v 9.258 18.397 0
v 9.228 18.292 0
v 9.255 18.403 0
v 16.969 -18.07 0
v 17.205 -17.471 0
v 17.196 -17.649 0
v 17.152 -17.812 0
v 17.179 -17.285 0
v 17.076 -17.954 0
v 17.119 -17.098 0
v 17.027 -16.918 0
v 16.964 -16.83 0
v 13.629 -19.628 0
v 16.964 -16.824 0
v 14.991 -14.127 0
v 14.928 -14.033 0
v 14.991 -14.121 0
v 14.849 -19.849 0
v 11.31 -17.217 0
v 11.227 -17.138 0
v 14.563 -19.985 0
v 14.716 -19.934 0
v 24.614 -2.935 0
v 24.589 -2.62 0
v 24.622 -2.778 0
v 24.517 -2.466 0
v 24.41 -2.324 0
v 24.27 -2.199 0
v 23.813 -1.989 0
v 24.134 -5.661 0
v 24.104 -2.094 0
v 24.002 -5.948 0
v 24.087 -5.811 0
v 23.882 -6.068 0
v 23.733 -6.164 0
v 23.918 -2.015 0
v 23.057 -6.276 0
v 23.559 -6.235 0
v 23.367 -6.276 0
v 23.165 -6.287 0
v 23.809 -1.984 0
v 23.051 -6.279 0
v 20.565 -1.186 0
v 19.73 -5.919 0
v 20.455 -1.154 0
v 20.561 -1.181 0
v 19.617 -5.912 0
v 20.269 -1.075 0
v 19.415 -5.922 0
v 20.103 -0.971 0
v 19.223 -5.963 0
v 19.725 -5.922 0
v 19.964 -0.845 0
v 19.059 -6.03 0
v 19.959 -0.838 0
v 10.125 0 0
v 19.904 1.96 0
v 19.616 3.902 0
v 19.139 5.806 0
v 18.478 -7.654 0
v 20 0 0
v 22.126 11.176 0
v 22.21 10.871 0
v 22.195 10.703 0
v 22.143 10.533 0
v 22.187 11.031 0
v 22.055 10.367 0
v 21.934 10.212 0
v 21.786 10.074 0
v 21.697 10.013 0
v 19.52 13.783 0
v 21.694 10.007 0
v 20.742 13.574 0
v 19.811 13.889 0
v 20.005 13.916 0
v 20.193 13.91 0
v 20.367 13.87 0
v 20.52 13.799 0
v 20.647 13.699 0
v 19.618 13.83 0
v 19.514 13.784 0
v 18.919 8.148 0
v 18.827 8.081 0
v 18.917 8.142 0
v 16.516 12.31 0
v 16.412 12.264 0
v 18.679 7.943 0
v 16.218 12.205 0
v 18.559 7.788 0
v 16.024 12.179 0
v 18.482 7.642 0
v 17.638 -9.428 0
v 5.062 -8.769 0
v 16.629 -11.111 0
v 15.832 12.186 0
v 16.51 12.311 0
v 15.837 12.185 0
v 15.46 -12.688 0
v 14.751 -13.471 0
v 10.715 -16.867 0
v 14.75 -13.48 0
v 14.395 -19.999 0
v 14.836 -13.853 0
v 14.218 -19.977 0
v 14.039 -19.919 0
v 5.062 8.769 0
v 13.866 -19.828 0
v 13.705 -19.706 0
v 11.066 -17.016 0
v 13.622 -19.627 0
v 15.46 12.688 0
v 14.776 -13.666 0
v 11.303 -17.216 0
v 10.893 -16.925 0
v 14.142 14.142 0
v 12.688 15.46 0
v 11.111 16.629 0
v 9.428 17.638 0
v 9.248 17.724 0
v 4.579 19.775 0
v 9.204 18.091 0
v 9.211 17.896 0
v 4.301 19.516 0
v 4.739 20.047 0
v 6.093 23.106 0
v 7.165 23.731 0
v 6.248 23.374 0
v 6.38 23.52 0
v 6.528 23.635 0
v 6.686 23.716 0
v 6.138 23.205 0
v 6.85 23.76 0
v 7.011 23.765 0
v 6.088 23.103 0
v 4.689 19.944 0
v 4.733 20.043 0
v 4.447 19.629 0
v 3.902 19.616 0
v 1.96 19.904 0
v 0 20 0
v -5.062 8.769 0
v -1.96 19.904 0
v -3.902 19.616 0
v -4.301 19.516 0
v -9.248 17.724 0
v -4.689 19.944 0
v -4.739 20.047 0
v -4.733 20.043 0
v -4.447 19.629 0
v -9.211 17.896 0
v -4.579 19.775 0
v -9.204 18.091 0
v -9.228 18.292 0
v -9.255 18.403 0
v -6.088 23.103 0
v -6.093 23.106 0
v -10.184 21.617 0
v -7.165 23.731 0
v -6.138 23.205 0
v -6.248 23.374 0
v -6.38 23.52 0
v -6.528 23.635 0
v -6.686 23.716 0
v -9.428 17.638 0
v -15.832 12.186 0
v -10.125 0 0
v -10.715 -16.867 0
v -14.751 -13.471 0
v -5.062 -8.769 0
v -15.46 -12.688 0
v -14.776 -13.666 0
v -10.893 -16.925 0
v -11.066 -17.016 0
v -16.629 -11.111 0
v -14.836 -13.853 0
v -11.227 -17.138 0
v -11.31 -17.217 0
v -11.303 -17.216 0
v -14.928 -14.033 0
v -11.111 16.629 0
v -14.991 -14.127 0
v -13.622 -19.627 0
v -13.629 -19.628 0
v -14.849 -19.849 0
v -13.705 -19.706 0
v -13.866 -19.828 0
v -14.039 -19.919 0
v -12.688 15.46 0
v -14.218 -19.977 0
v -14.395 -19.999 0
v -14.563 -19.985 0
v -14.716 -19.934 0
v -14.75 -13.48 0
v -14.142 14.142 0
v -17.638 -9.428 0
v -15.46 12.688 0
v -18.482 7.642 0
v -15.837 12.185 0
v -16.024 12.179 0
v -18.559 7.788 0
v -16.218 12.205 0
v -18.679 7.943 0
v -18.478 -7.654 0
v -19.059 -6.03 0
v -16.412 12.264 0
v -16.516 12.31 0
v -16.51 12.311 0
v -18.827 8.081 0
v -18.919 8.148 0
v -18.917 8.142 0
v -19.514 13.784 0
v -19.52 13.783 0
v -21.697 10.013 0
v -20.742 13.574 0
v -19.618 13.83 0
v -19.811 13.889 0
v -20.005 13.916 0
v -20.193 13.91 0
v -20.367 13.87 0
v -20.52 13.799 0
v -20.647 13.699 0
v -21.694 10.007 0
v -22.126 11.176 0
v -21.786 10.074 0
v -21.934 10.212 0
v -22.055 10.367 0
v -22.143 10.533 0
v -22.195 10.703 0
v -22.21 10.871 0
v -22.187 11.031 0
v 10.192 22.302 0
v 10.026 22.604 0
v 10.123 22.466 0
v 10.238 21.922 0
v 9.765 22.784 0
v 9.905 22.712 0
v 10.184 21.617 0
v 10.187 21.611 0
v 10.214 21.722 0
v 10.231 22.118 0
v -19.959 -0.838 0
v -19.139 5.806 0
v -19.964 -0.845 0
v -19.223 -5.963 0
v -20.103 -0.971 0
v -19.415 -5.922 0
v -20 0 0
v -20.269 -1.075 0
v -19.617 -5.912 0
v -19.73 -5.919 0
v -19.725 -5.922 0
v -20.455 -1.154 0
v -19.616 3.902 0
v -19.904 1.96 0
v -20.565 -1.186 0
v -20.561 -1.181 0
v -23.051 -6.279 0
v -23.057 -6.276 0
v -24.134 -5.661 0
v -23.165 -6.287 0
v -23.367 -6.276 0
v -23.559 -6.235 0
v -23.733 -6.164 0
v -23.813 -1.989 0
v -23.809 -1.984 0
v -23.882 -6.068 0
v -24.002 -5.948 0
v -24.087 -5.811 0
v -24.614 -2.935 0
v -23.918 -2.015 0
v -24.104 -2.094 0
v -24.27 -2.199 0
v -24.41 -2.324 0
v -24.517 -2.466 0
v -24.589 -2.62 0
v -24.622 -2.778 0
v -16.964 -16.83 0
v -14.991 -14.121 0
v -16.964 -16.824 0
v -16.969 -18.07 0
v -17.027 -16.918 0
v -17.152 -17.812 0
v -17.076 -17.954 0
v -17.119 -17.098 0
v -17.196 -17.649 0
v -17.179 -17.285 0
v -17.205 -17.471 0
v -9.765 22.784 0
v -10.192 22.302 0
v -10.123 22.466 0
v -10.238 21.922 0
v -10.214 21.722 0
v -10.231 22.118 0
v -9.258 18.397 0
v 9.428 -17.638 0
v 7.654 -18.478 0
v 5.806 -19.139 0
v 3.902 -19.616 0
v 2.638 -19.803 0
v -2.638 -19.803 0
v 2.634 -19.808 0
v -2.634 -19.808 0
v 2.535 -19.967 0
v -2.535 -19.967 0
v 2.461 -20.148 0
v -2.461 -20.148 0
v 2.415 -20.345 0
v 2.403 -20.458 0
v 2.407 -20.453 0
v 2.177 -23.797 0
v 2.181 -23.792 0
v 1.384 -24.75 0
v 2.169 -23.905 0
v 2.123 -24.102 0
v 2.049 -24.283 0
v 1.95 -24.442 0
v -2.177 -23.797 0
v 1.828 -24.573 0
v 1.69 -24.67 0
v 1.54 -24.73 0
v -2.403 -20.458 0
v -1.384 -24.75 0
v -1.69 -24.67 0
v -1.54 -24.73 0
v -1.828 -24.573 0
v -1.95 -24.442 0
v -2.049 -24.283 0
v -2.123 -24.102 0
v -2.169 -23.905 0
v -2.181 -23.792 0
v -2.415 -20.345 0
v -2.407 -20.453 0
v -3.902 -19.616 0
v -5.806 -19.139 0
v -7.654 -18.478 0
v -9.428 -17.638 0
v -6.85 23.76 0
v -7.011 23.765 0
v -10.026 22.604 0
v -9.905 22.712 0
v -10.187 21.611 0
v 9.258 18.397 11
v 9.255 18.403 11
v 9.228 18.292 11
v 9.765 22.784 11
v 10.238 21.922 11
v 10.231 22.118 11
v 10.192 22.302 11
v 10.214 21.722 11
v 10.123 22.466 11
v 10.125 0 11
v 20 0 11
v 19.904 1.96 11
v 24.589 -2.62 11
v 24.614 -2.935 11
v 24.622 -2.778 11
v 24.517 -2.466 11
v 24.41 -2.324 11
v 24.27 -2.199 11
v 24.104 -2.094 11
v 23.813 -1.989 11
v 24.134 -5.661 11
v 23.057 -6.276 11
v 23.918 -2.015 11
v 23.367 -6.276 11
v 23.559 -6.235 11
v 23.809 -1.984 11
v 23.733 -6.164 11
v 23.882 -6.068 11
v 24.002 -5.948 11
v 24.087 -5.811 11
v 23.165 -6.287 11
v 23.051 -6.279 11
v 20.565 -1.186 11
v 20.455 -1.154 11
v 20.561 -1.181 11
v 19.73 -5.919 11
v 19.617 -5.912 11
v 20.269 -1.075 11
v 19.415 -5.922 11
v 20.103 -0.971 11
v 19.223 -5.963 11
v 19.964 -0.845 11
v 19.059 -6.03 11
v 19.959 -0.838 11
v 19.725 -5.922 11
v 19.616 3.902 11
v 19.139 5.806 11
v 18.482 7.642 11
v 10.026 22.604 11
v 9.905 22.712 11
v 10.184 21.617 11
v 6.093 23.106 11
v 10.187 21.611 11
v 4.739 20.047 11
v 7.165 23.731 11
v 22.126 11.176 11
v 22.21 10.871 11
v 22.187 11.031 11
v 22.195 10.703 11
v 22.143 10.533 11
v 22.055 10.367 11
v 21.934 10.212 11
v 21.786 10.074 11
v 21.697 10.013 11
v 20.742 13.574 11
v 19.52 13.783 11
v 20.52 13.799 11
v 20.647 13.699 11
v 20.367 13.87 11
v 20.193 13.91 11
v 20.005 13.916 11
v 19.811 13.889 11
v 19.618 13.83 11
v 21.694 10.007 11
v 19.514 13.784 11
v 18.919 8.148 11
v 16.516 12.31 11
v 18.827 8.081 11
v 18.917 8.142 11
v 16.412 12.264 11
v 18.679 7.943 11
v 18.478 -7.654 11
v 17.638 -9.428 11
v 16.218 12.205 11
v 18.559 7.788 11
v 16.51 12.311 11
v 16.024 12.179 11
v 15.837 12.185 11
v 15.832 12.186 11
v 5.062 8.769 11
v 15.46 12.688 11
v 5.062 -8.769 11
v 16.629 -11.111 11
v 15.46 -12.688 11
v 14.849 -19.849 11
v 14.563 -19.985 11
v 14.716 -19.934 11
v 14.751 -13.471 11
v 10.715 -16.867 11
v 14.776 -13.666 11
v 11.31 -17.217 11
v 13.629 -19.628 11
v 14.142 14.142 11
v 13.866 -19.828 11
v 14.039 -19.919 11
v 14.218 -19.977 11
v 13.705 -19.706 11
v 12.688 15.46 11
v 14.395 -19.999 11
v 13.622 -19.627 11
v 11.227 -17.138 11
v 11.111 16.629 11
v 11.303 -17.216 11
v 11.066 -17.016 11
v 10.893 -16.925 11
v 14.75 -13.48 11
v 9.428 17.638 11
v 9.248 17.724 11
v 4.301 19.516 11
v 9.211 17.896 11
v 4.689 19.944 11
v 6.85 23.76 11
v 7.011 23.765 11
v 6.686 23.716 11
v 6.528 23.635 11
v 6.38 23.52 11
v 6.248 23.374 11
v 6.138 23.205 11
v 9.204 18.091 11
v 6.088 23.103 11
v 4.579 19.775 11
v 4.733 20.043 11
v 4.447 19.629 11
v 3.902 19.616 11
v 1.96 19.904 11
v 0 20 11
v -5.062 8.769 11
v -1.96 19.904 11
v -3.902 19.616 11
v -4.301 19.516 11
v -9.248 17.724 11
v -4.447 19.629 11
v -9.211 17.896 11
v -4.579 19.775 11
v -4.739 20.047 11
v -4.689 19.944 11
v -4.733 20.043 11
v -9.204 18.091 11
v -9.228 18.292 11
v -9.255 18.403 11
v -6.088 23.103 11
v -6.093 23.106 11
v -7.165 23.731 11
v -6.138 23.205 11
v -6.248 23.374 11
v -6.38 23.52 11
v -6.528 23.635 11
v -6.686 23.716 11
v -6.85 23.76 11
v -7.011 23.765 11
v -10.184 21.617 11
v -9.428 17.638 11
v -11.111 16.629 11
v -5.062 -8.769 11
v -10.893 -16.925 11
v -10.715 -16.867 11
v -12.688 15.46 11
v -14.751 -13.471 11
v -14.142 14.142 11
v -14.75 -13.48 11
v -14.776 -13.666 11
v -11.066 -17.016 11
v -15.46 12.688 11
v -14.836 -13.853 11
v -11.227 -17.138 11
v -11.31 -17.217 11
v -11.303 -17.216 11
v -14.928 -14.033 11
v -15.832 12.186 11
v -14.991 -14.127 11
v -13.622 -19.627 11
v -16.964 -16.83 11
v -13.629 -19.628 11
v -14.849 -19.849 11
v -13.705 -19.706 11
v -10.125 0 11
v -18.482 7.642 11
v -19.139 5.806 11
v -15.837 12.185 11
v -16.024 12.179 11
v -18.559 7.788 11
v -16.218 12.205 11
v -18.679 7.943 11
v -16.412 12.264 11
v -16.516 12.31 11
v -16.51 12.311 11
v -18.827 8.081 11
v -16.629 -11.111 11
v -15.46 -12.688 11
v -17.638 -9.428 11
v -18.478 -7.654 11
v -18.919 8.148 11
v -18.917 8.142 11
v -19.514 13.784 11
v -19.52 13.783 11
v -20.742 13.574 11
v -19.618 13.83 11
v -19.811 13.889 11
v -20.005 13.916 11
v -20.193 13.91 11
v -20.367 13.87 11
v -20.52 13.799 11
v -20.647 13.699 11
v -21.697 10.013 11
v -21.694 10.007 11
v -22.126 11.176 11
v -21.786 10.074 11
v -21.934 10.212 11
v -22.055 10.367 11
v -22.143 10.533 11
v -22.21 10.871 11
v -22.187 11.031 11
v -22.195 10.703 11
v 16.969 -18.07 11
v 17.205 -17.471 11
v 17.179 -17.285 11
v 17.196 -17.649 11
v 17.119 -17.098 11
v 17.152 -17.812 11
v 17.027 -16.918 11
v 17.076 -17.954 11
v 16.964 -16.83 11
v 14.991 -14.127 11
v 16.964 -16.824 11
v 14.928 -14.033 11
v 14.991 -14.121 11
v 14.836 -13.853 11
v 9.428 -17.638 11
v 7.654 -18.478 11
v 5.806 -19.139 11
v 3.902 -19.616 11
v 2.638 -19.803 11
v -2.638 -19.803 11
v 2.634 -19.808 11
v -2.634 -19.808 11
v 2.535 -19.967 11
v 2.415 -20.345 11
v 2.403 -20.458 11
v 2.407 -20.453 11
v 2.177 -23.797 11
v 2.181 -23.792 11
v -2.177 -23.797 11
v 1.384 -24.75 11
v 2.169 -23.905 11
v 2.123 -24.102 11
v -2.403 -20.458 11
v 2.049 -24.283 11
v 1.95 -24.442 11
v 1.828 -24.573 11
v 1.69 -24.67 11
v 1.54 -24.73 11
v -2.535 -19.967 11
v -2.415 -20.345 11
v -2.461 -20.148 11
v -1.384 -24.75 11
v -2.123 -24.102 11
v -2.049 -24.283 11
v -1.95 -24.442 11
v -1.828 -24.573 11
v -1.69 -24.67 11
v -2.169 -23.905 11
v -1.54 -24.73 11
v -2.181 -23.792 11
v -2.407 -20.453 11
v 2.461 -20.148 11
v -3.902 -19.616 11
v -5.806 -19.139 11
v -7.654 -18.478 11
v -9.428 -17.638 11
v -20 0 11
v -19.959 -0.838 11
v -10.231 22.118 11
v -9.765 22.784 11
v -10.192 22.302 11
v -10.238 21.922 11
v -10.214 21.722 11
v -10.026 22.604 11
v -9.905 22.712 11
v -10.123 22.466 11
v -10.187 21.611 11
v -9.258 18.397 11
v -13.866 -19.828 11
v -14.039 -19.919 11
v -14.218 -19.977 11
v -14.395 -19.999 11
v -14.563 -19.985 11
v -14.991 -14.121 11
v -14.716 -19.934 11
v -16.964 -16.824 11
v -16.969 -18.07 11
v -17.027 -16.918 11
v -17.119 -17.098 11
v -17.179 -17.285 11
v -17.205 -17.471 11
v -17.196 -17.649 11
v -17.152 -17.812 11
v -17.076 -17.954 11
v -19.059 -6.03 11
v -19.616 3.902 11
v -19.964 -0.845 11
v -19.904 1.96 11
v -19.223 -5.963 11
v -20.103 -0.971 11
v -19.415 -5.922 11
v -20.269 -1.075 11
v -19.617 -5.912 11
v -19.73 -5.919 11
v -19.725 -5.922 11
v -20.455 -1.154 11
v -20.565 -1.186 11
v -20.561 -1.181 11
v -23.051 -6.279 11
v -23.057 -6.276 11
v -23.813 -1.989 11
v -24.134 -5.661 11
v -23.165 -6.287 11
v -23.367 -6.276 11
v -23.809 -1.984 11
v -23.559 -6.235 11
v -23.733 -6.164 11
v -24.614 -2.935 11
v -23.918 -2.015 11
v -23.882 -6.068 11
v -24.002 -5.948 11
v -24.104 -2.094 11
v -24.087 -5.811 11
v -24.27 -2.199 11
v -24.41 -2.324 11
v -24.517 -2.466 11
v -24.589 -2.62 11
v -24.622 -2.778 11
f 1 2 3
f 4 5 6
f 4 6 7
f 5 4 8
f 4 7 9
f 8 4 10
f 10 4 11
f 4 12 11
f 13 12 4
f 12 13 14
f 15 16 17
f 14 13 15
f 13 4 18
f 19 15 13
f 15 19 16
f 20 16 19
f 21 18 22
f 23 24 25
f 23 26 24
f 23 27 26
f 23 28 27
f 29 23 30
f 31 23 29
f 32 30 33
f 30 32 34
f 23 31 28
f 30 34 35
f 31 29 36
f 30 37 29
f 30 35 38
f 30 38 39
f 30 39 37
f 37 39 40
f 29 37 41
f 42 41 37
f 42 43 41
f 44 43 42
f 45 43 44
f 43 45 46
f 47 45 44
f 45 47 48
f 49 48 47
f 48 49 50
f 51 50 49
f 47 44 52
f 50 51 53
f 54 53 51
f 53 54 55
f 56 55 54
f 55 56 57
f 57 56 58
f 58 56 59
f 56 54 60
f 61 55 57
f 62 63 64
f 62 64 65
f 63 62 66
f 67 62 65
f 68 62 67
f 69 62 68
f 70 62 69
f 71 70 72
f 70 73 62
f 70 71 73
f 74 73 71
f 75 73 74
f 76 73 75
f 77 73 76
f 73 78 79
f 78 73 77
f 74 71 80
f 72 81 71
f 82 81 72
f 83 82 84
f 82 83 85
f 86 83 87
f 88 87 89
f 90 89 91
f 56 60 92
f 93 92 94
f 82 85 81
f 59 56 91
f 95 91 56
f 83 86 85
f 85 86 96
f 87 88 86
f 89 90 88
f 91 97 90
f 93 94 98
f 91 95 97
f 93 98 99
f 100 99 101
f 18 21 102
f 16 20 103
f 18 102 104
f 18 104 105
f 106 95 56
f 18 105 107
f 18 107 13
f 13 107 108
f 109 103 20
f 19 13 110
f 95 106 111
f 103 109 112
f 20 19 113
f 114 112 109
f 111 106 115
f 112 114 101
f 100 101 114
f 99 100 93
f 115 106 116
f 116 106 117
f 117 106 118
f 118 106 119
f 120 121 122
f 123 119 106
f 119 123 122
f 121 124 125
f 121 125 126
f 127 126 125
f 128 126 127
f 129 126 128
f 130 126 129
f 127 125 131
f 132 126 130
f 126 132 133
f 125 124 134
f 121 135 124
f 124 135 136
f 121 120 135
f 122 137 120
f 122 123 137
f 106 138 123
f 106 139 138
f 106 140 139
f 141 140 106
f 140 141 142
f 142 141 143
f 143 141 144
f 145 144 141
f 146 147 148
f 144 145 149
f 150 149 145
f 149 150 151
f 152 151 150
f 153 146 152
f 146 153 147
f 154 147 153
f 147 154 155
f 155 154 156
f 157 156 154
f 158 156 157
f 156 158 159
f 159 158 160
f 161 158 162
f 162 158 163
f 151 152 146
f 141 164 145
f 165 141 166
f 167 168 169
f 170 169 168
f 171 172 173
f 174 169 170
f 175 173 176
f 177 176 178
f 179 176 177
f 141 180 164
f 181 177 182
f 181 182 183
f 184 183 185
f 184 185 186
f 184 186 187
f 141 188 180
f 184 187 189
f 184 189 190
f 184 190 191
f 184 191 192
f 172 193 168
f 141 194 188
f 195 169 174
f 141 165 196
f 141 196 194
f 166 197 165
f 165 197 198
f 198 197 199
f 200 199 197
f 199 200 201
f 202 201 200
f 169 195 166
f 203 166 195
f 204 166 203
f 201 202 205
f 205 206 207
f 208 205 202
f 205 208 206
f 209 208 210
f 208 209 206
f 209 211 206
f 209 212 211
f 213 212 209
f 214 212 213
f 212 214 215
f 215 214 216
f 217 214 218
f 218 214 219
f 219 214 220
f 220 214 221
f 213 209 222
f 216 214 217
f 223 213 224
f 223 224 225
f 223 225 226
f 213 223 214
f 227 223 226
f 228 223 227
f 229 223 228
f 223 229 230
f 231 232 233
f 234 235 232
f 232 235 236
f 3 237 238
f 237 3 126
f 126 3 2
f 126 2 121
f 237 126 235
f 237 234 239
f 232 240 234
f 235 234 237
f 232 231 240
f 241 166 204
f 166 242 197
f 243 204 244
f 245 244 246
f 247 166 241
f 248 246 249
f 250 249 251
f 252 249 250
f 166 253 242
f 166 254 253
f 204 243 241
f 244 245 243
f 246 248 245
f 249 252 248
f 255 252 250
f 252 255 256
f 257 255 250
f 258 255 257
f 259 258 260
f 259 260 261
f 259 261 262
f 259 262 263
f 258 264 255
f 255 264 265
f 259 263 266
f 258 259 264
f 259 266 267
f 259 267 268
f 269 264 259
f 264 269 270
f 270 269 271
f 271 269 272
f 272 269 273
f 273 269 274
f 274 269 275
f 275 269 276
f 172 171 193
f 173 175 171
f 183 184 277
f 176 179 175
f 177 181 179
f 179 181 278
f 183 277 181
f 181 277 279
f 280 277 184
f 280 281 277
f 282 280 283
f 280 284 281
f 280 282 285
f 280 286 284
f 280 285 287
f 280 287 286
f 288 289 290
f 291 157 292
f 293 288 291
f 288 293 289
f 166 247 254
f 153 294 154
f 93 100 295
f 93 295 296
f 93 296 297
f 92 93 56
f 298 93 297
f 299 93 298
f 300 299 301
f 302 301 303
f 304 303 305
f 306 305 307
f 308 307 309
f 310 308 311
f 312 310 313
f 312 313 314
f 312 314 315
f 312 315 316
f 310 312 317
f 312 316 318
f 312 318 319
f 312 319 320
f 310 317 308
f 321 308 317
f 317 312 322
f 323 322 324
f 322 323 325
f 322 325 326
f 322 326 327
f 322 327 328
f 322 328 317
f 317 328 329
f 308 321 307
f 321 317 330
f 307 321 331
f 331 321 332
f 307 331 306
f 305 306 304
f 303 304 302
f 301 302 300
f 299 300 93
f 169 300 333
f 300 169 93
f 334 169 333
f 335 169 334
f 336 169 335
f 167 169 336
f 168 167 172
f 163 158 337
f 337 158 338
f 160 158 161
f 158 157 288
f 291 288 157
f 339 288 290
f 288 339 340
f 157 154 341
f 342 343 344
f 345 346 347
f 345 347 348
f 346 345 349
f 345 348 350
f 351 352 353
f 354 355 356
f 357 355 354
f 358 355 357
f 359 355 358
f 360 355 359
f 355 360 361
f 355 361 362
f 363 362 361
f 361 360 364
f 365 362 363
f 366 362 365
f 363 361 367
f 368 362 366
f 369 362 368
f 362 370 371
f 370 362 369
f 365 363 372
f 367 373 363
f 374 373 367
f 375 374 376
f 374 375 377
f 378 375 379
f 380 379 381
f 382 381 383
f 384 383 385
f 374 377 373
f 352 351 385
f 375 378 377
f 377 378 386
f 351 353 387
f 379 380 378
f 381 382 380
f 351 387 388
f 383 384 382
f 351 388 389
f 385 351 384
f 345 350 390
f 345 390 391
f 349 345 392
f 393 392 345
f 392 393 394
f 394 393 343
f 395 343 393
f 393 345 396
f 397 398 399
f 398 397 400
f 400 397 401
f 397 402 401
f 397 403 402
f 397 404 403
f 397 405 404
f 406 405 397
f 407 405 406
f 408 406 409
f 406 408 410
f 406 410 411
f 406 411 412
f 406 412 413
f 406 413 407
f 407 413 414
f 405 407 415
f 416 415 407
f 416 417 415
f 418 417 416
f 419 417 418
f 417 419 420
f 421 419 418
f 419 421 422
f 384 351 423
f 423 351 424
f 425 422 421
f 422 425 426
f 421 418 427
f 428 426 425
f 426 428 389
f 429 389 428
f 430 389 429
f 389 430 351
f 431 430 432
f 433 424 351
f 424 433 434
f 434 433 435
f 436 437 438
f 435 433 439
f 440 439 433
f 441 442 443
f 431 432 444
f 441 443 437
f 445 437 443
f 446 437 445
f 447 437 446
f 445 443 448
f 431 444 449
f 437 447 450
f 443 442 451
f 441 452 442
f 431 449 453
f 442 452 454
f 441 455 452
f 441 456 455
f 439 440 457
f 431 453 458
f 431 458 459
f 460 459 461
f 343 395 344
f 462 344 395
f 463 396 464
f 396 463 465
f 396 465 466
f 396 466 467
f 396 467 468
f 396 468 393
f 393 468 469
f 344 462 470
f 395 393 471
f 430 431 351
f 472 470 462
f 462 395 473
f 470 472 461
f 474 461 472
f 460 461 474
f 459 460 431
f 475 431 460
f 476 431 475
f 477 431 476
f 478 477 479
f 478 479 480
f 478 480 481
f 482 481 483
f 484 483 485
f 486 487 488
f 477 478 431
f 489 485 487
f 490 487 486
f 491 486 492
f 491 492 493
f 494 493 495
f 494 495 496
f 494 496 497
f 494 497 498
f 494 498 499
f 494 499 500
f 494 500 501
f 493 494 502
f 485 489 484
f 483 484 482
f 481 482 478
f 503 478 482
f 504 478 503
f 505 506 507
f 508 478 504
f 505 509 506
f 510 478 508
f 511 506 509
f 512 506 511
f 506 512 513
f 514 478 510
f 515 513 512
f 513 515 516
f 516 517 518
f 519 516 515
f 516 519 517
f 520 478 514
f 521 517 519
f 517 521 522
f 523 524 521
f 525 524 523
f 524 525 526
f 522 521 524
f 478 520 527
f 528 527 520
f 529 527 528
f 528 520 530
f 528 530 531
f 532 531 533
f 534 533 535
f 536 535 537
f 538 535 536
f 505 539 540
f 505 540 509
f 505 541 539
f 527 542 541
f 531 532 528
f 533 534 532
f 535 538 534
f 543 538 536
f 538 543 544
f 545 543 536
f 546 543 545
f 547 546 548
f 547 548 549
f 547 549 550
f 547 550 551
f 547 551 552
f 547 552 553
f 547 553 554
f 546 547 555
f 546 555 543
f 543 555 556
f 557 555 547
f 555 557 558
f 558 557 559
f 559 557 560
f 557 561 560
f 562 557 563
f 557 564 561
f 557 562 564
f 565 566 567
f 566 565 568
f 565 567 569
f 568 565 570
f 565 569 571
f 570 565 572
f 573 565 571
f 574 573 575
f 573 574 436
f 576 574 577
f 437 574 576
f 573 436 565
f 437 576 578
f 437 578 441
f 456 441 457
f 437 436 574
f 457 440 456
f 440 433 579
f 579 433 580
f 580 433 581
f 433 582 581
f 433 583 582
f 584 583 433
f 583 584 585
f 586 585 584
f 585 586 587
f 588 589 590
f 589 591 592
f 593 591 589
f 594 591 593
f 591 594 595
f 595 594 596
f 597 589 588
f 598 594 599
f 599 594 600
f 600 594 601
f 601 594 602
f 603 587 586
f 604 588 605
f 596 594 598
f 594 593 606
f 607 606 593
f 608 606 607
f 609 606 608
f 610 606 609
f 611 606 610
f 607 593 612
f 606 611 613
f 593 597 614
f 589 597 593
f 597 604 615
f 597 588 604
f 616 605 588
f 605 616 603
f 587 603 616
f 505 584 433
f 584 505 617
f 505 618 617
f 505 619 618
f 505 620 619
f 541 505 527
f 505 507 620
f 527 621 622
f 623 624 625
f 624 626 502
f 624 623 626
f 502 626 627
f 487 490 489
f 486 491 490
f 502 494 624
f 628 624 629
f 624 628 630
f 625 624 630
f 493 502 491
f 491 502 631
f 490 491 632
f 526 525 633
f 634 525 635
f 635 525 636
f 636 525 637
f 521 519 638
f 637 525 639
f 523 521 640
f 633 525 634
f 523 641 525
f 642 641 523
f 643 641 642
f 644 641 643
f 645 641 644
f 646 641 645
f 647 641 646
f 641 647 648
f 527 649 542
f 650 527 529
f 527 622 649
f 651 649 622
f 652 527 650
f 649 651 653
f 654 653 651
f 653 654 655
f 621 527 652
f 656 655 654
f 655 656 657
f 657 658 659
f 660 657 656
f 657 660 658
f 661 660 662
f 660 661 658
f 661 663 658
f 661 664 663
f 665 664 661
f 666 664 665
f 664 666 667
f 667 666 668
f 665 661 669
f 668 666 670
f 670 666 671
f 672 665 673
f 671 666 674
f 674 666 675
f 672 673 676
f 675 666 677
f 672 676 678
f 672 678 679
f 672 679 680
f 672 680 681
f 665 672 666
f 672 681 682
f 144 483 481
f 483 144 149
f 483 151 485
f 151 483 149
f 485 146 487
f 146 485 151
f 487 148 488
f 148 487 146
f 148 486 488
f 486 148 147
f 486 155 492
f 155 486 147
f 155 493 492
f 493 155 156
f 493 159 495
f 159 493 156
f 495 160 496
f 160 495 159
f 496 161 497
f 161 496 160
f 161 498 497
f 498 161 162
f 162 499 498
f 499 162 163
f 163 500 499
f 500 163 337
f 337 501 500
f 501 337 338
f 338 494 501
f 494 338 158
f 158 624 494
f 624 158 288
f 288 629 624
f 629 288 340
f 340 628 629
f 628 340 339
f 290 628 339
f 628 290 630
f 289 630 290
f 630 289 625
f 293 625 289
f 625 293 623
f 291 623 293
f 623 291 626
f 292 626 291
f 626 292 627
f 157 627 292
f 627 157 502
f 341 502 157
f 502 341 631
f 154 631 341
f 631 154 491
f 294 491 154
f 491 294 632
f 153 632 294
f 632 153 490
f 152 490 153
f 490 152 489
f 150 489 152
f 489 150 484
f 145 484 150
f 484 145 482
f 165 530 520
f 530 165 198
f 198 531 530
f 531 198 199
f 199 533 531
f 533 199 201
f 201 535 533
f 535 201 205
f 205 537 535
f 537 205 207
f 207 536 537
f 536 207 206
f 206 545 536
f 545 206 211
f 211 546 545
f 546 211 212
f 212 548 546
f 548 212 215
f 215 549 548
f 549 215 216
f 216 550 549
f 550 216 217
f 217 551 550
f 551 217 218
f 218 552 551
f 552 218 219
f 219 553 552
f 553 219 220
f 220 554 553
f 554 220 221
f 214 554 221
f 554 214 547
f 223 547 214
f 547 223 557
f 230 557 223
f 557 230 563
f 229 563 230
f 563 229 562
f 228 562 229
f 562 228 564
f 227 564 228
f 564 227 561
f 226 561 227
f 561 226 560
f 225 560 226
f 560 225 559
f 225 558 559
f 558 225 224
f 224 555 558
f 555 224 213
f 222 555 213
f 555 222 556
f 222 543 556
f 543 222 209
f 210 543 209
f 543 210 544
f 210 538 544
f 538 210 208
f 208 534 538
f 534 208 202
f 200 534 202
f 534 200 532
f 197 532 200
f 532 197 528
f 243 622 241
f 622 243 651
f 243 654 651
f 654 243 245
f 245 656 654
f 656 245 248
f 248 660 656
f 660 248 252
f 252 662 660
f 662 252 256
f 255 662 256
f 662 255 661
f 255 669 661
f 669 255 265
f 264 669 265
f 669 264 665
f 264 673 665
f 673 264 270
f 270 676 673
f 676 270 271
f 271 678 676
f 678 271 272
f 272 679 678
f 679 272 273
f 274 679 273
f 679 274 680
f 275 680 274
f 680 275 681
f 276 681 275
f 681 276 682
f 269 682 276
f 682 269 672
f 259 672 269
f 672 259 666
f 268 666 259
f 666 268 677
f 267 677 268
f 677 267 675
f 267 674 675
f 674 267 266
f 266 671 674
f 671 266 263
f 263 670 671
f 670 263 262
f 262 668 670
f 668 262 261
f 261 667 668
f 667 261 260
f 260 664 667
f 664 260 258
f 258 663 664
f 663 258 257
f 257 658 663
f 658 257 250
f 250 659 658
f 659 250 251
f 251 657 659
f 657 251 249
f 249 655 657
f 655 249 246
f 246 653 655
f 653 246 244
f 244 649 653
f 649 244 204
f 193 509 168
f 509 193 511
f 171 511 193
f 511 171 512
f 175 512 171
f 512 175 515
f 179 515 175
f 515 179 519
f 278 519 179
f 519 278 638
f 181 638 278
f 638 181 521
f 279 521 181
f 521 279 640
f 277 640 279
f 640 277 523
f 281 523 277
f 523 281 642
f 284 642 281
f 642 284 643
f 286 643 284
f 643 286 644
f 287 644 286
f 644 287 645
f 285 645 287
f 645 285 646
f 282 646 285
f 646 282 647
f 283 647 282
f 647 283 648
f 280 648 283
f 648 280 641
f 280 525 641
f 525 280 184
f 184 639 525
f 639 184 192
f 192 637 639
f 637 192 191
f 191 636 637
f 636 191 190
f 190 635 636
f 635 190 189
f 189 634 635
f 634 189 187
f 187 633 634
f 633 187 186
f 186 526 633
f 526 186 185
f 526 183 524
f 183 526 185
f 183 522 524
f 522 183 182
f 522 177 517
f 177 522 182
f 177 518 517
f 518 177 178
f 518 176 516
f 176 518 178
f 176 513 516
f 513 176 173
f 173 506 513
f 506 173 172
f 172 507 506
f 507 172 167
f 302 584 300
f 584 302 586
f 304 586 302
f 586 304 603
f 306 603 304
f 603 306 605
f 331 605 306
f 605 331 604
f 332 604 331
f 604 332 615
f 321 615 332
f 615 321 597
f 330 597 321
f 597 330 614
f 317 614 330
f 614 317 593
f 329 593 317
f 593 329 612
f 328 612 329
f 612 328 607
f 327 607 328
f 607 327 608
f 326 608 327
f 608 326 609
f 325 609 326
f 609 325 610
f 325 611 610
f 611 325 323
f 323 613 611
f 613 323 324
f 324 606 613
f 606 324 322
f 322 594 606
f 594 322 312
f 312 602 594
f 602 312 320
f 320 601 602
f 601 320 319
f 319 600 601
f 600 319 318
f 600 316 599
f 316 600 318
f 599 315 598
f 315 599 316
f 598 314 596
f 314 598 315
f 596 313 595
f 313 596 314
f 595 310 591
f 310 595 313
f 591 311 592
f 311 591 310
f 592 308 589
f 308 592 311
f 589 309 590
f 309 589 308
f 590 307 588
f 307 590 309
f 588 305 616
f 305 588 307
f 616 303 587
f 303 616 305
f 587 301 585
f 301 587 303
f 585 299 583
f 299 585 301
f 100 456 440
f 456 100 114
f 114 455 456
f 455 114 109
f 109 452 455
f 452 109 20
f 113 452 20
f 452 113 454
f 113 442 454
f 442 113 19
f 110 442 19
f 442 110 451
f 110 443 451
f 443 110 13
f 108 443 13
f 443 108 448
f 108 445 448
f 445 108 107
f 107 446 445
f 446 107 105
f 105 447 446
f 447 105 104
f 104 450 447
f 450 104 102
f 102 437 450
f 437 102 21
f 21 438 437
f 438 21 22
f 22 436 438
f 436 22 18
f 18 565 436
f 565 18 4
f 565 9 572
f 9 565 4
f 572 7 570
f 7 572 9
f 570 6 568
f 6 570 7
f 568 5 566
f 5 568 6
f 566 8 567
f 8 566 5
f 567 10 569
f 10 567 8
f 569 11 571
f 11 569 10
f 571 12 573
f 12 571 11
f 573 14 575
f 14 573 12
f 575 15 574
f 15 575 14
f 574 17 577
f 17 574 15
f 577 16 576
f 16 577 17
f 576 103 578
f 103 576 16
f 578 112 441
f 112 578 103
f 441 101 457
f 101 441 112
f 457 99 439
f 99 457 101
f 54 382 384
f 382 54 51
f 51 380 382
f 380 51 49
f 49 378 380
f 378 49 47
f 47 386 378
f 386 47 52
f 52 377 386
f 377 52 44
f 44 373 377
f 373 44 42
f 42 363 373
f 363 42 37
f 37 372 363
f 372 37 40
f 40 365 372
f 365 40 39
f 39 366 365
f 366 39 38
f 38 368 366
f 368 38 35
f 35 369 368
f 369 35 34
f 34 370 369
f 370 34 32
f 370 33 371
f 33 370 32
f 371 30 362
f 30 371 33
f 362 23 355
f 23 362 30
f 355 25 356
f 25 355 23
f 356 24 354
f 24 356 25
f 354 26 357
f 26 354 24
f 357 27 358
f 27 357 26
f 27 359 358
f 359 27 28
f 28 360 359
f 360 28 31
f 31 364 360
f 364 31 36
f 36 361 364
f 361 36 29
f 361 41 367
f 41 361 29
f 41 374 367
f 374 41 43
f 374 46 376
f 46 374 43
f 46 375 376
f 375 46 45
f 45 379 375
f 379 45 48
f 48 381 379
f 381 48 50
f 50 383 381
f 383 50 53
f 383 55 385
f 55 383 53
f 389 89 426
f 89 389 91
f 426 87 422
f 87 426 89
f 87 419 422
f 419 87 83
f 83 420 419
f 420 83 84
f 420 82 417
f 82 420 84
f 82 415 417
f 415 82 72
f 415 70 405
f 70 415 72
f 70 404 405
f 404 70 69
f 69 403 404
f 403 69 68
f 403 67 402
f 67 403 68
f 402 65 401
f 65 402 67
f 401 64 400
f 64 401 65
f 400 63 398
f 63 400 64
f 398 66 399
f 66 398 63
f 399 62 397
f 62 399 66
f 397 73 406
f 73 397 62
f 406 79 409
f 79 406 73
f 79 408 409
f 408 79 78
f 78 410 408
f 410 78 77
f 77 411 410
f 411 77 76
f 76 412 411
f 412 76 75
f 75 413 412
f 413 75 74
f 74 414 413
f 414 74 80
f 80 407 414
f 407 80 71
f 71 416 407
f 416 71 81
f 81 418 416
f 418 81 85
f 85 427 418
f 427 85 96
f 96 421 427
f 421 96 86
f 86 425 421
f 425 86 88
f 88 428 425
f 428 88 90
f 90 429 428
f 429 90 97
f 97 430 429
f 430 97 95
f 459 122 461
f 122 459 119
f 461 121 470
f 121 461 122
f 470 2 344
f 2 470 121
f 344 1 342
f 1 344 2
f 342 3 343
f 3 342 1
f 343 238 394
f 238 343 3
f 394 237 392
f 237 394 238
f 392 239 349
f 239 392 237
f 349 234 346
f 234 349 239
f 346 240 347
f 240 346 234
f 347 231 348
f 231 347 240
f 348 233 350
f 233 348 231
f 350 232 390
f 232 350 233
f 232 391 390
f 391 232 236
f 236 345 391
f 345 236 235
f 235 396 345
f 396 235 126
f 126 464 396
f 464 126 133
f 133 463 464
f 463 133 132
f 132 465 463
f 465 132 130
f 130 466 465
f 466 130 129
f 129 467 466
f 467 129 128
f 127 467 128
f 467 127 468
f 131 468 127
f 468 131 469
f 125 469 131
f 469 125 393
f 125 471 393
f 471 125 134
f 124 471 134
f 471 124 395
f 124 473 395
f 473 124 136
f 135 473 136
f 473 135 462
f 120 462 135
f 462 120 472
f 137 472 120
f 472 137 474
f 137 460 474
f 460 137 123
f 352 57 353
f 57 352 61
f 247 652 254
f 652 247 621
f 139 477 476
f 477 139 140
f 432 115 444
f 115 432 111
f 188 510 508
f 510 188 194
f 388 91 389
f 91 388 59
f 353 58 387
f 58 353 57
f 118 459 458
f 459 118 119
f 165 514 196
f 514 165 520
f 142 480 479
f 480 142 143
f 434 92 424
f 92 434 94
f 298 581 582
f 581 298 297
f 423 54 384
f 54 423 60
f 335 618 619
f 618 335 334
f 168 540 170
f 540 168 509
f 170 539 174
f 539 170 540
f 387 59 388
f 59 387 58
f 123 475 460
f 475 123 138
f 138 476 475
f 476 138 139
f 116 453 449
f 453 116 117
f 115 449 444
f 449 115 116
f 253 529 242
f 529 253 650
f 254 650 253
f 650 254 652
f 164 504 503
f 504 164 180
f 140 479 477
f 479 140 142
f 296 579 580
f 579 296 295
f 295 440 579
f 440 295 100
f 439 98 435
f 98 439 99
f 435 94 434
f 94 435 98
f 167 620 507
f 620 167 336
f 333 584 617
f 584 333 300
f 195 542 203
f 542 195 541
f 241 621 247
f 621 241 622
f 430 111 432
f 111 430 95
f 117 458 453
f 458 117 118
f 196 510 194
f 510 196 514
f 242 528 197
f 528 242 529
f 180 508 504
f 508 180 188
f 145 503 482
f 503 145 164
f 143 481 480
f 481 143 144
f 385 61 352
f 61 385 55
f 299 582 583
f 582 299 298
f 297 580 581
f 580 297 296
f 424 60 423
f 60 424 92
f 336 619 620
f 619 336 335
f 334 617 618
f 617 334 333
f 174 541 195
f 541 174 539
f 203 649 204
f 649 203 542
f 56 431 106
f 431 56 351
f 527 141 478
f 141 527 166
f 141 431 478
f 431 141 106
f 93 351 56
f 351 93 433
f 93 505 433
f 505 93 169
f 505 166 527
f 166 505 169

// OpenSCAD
// file: ../shared/Tooth Profile.scad
//Simple Trapezoid Tooth Profile - used by Belt - don't print
use <Chamfer-Fillet-Machine.scad>
pressure_angle = 14.5;//degrees
tooth_pitch = 16;//mm
half_tooth_pitch = tooth_pitch/2;
root_fillet_radius = 2;//mm
tooth_height = 5;//mm

function tooth_points(
    pressure_angle=14.5,
    tooth_pitch=16,
    root_fillet_radius=2,
    tooth_height=12,
    descent=0.1) = 
    let(
        //half pitch
        half_tooth_pitch = tooth_pitch/2,
        
        //find the tangent contact points
        x_fact = cos(pressure_angle),
        y_fact = sin(pressure_angle),
        
        //find the x and y distance from circle centre
        dx_radial = x_fact * root_fillet_radius,
        dy_radial = y_fact * root_fillet_radius,

        //find the tangent coordinates
        x_tang = -half_tooth_pitch + dx_radial,
        y_tang = root_fillet_radius - dy_radial,

        //find gradient of the radial
        radial_gradient = -dy_radial / dx_radial,

        //find gradient of tangent
        tangent_gradient = -1 / radial_gradient,

        //calculate intersection point on baseline (y = 0)
        x_base_disp = y_tang / tangent_gradient,
        x_base = x_tang - x_base_disp,

        //calculate intersection point on top (y = height)
        y_top_disp = (tooth_height - y_tang),
        x_top_disp = y_top_disp / tangent_gradient,
        x_top = x_tang + x_top_disp,
        pts = [
            //[0, -descent, 0],
            [-(half_tooth_pitch + root_fillet_radius), -descent, 0],
            [-(half_tooth_pitch + root_fillet_radius), 0, 0],
            [x_base, 0, root_fillet_radius],
            [x_top, tooth_height, 1],
            [-x_top, tooth_height, 1],
            [-x_base, 0, root_fillet_radius],
            [half_tooth_pitch + root_fillet_radius, 0, 0],
            [half_tooth_pitch + root_fillet_radius, -descent, 0],
            [-(half_tooth_pitch + root_fillet_radius), -descent, 0]
            //[0, -descent, 0]
        ]
    ) pts;

module tooth_pitch_debug(
    pressure_angle=14.5,
    tooth_pitch=16,
    root_fillet_radius=2,
    tooth_height=12) {

    //draw 2 circles to represent the root fillets, and space them apart by the pitch
    translate([-tooth_pitch/2, root_fillet_radius]) circle(root_fillet_radius, $fn=32);
    translate([tooth_pitch/2, root_fillet_radius]) circle(root_fillet_radius, $fn=32);

    //simulate a zero degree pressure angle
    %translate([0, tooth_height/2]) square([tooth_pitch - (2 * root_fillet_radius), tooth_height], center=true);

    //find the tangent contact points
    x_fact = cos(pressure_angle);
    y_fact = sin(pressure_angle);
    echo("x_fact: ", x_fact, "y_fact: ", y_fact);
    //find the x and y distance from circle centre
    dx_radial = x_fact * root_fillet_radius;
    dy_radial = y_fact * root_fillet_radius;
    echo("dx_radial: ", dx_radial, "dy_radial: ", dy_radial);

    x_tang = -half_tooth_pitch + dx_radial;
    y_tang = root_fillet_radius - dy_radial;
    echo("x_tang: ", x_tang, "y_tang: ", y_tang);

    //annotate tangent contact points
    color("black", 0.25) translate([x_tang, y_tang]) circle(0.5, $fn=32);
    color("black", 0.25) translate([-x_tang, y_tang]) circle(0.5, $fn=32);

    //annotate radial
    color("blue") translate([-half_tooth_pitch, root_fillet_radius]) vector_arrow([dx_radial, -dy_radial]);

    //find gradient of the radial
    radial_gradient = -dy_radial / dx_radial;
    echo("radial_gradient: ", radial_gradient);

    //find gradient of tangent
    tangent_gradient = -1 / radial_gradient;
    echo("tangent_gradient: ", tangent_gradient);

    //calculate intersection point on baseline (y = 0)
    x_base_disp = y_tang / tangent_gradient;
    x_base = x_tang - x_base_disp;
    echo("x_base_disp: ", x_base_disp, "x_base: ", x_base);

    //annotate triangle
    color("yellow", 0.25) polygon([
        [x_tang, y_tang],
        [x_tang, 0],
        [x_base, 0]
    ]);

    //annotate base contact points
    color("black", 0.25) translate([x_base, 0]) circle(0.5, $fn=32);

    //create tangent line vector
    Vtang = [dy_radial, dx_radial];
    Vtangex = extend_vect(Vtang, 20);
    echo("Vtang: ", Vtang);

    //annotate tangents
    color("red") translate([x_base, 0]) vector_line(Vtangex);

    //label pressure angle
    color("black") translate([-half_tooth_pitch, tooth_height + 1]) text(str("Pressure Angle: ", pressure_angle, " degrees"), size=0.5);

    //calculate intersection point on top (y = height)
    y_top_disp = (tooth_height - y_tang);
    x_top_disp = y_top_disp / tangent_gradient;
    echo("y_top_disp: ", y_top_disp, "x_top_disp: ", x_top_disp);
    x_top = x_tang + x_top_disp;
    echo("x_top: ", x_top);

    //annotate triangle
    color("yellow", 0.35) polygon([
        [x_tang, y_tang],
        [x_tang, tooth_height],
        [x_top, tooth_height]
    ]);

    //annotate top contact points
    color("black", 0.25) translate([x_top, tooth_height]) circle(0.5, $fn=32);
}
*tooth_pitch_debug();
// file: ../shared/Constants.scad
/*
    Constants.scad contains all the global constants
*/
use <Tooth Profile.scad>

//idler hub
idle_bearing_od = 16;//mm
idle_bearing_fit_dia = idle_bearing_od * 1.03;//push-in fit for bearing
idle_bearing_thickness = 5.25;//push-in fit
hub_thickness = 15;
hub_dia = 24;
idle_shaft_hole_dia = 6.5;//clearance for 6mm shaft
scraper_fix_hole_dia = 4.5;//mm
idler_width = 25;//mm
idler_dia = 50;//mm
idler_spacing = 0.5;//mm
radial_spacing = 5;//mm
tube_insertion = 25;//mm
tube_outer_dim = 10;//10mm square tube
tube_dim = sqrt(tube_outer_dim^2 + tube_outer_dim^2) * 1.04;
echo("tube_outer_dim:", tube_outer_dim, "tube_dim:", tube_dim);

//idler wheel
idle_wheel_thickness = 25;
idle_wheel_dia = 50;
idle_shaft_dia = 6.25;//mm
tooth_space_thickness = 11;//mm
tooth_space_dia = 35;//mm
runner_thickness = (idle_wheel_thickness - tooth_space_thickness)/2;
edge_radius = 1;
dee_shaft_offset = 1;
spigot_scale_factor = 1.0;//grow spigot hole if necessary for a tight fit

//idler axle
idle_rod_dia = 5.92;//mm tight fit for bearing
idle_rod_length = 25 + (2 * 0.5) + (2 * 15) + (2 * 2);//mm idler width + 2 spacers + 2 hubs + 2 washers
echo("idle_rod_length", idle_rod_length);
idle_rod_cap_length = 2;//mm
idle_rod_clip_width = 1;//mm
idle_rod_clip_dia = 4.5;//mm

//knurled wheel and locknut
//knob parameters
KNOB_DIAM=25;
//screw parameters
SCREWHEAD_FACETOFACE=0;
SCREWHEAD_DEPTH=12;
THRU_HOLE_DIAM=9.5;
//grippy cutouts parameters
NUM_GRIP_CUTOUTS=20;
GRIP_CUTOUT_DIAM=4;
CUTOUT_RADIUS_ADJ=1;
KNURLED_WHEEL_HEIGHT=6;
KNURLED_WHEEL_NUM_TURNS = 3.5;
LOCKNUT_HEIGHT=3;
LOCKNUT_NUM_TURNS = 1.375;

//motor plate
gearbox_collar_hole_dia = 22.2;//mm
motor_plate_thickness = 4;//mm
motor_plate_corner_dia = 15;//mm
plan_motor_dia = 36.3;//mm
plan_shoulder_base_thickness = 3;// mm
plan_shoulder_thickness = 5;// mm
plan_shoulder_height = 20;// mm

//planetary motor bracket
pmb_motor_dia = 36;//mm 35.5 plus clearance
pmb_base_thickness = 3;//mm
pmb_foot_thickness = 5;//mm
pmb_width = 10;//mm
pmb_thickness = 4;//mm
pmb_chamfer_radius = 1;//mm
pmb_fix_hole_dia = 4.5;//mm

//bearing backplate
drive_bearing_bush_dia = 24;//mm
drive_bearing_od = 16;//mm
drive_bearing_fit_dia = drive_bearing_od * 1.02;//push fit for bearing
drive_bearing_recess = 6;//mm 

//drive sprocket
sprocket_spacing = 0.5;//mm
tooth_height = 5;//mm 4 + 1 to sink into cylinder

//tube clamp
clamp_width = 10;//mm
clamp_effect = 0.75;//mm
clamp_int_dia = 0.5;//mm
clamp_ext_dia = 2.5;//mm
clamp_fix_hole_dia = 4.8;//mm
clamp_washer_dia = 13;// for 12.5mm washer
clamp_washer_thickness = 1;//mm

//drive spindle
plan_motor_drive_shaft_dia = 8;//mm
spindle_outer_dia = 20;//mm fn=6 for hex
spindle_length = 25;//mm
spindle_shoulder_dia = 30;//mm
spindle_shoulder_width = 10;//mm
drive_sprocket_shaft_hole_dia = 8.32;//for 8mm shaft
spindle_dee_shaft_offset = 1;//mm
spindle_dee_shaft_dia = plan_motor_drive_shaft_dia * 1.0175;//mm interference fit
spindle_drive_shaft_length = 25;//mm shaft is 17.5 only 14mm of which is D'eed
spindle_bearing_shaft_dia = 9.3;//space for M8 thread
spindle_thread_num_turns = 9;
spindle_thread_x_factor = 1.04;
spindle_thread_y_factor = 1.04;
spindle_thread_z_factor = 1.0;

//drive sprocket shaft
drive_sprocket_shaft_num_turns = 14;
bearing_section_length = 10;//mm
back_bearing_stub_dia = 7.95;//mm for 8mm hole in bearing

//drive sprocket cog
tth_num_teeth = 9;
tth_pitch_angle = 360 / tth_num_teeth;
drive_sprocket_dia = 50;
tooth_depression = 1.1;//to smooth base fillets
sprock_tooth_x_scale = 0.8;//put space between teeth
sprock_tooth_y_scale = 1.05;//
sprock_thickness = 11;//mm for a 7|11|7 sandwich
tth_sprock_press_angle = 5;
tth_tooth_pitch = 8;
tth_root_fillet_radius = 1;
tth_tooth_height = 5;
sprock_tooth_profile_pts = tooth_points(tth_sprock_press_angle, tth_tooth_pitch, tth_root_fillet_radius, tth_tooth_height);

//drive plain cog
plain_cog_dia = 50;
plain_cog_thickness = 7;
plain_cog_rim_thickness = 3;//mm

//just for assembly
wheelbase = 200;//mm horizontal distance between idle wheel centres
track_triangle_height = 60;//mm vertical distance between drive motor and tube centres
// main file
//Drive Sprocket Cog
include <../shared/Constants.scad>
use <../shared/Chamfer-Fillet-Machine.scad>

//module drive_sprocket_cog(outer_dia, tooth_height, tooth_depression) {
module drive_sprocket_cog() {
    difference() {
        union() {
            cylinder(h=sprock_thickness, r=((drive_sprocket_dia/2) - tth_tooth_height), $fn=64);
            for(a=[tth_pitch_angle/2: 360/tth_num_teeth: 360]) {
                //sprocket tooth
                rotate([0, 0, a]) translate([0, (drive_sprocket_dia/2) - (tth_tooth_height*tooth_depression)]) scale([sprock_tooth_x_scale, sprock_tooth_y_scale]) linear_extrude(sprock_thickness) chamfer_fillet_2d(sprock_tooth_profile_pts);    
            }//next tooth
        }//end union
        cylinder(h=30, d=spindle_outer_dia + 0.25, $fn=6, center=true);
    }
}//end module

drive_sprocket_cog();
